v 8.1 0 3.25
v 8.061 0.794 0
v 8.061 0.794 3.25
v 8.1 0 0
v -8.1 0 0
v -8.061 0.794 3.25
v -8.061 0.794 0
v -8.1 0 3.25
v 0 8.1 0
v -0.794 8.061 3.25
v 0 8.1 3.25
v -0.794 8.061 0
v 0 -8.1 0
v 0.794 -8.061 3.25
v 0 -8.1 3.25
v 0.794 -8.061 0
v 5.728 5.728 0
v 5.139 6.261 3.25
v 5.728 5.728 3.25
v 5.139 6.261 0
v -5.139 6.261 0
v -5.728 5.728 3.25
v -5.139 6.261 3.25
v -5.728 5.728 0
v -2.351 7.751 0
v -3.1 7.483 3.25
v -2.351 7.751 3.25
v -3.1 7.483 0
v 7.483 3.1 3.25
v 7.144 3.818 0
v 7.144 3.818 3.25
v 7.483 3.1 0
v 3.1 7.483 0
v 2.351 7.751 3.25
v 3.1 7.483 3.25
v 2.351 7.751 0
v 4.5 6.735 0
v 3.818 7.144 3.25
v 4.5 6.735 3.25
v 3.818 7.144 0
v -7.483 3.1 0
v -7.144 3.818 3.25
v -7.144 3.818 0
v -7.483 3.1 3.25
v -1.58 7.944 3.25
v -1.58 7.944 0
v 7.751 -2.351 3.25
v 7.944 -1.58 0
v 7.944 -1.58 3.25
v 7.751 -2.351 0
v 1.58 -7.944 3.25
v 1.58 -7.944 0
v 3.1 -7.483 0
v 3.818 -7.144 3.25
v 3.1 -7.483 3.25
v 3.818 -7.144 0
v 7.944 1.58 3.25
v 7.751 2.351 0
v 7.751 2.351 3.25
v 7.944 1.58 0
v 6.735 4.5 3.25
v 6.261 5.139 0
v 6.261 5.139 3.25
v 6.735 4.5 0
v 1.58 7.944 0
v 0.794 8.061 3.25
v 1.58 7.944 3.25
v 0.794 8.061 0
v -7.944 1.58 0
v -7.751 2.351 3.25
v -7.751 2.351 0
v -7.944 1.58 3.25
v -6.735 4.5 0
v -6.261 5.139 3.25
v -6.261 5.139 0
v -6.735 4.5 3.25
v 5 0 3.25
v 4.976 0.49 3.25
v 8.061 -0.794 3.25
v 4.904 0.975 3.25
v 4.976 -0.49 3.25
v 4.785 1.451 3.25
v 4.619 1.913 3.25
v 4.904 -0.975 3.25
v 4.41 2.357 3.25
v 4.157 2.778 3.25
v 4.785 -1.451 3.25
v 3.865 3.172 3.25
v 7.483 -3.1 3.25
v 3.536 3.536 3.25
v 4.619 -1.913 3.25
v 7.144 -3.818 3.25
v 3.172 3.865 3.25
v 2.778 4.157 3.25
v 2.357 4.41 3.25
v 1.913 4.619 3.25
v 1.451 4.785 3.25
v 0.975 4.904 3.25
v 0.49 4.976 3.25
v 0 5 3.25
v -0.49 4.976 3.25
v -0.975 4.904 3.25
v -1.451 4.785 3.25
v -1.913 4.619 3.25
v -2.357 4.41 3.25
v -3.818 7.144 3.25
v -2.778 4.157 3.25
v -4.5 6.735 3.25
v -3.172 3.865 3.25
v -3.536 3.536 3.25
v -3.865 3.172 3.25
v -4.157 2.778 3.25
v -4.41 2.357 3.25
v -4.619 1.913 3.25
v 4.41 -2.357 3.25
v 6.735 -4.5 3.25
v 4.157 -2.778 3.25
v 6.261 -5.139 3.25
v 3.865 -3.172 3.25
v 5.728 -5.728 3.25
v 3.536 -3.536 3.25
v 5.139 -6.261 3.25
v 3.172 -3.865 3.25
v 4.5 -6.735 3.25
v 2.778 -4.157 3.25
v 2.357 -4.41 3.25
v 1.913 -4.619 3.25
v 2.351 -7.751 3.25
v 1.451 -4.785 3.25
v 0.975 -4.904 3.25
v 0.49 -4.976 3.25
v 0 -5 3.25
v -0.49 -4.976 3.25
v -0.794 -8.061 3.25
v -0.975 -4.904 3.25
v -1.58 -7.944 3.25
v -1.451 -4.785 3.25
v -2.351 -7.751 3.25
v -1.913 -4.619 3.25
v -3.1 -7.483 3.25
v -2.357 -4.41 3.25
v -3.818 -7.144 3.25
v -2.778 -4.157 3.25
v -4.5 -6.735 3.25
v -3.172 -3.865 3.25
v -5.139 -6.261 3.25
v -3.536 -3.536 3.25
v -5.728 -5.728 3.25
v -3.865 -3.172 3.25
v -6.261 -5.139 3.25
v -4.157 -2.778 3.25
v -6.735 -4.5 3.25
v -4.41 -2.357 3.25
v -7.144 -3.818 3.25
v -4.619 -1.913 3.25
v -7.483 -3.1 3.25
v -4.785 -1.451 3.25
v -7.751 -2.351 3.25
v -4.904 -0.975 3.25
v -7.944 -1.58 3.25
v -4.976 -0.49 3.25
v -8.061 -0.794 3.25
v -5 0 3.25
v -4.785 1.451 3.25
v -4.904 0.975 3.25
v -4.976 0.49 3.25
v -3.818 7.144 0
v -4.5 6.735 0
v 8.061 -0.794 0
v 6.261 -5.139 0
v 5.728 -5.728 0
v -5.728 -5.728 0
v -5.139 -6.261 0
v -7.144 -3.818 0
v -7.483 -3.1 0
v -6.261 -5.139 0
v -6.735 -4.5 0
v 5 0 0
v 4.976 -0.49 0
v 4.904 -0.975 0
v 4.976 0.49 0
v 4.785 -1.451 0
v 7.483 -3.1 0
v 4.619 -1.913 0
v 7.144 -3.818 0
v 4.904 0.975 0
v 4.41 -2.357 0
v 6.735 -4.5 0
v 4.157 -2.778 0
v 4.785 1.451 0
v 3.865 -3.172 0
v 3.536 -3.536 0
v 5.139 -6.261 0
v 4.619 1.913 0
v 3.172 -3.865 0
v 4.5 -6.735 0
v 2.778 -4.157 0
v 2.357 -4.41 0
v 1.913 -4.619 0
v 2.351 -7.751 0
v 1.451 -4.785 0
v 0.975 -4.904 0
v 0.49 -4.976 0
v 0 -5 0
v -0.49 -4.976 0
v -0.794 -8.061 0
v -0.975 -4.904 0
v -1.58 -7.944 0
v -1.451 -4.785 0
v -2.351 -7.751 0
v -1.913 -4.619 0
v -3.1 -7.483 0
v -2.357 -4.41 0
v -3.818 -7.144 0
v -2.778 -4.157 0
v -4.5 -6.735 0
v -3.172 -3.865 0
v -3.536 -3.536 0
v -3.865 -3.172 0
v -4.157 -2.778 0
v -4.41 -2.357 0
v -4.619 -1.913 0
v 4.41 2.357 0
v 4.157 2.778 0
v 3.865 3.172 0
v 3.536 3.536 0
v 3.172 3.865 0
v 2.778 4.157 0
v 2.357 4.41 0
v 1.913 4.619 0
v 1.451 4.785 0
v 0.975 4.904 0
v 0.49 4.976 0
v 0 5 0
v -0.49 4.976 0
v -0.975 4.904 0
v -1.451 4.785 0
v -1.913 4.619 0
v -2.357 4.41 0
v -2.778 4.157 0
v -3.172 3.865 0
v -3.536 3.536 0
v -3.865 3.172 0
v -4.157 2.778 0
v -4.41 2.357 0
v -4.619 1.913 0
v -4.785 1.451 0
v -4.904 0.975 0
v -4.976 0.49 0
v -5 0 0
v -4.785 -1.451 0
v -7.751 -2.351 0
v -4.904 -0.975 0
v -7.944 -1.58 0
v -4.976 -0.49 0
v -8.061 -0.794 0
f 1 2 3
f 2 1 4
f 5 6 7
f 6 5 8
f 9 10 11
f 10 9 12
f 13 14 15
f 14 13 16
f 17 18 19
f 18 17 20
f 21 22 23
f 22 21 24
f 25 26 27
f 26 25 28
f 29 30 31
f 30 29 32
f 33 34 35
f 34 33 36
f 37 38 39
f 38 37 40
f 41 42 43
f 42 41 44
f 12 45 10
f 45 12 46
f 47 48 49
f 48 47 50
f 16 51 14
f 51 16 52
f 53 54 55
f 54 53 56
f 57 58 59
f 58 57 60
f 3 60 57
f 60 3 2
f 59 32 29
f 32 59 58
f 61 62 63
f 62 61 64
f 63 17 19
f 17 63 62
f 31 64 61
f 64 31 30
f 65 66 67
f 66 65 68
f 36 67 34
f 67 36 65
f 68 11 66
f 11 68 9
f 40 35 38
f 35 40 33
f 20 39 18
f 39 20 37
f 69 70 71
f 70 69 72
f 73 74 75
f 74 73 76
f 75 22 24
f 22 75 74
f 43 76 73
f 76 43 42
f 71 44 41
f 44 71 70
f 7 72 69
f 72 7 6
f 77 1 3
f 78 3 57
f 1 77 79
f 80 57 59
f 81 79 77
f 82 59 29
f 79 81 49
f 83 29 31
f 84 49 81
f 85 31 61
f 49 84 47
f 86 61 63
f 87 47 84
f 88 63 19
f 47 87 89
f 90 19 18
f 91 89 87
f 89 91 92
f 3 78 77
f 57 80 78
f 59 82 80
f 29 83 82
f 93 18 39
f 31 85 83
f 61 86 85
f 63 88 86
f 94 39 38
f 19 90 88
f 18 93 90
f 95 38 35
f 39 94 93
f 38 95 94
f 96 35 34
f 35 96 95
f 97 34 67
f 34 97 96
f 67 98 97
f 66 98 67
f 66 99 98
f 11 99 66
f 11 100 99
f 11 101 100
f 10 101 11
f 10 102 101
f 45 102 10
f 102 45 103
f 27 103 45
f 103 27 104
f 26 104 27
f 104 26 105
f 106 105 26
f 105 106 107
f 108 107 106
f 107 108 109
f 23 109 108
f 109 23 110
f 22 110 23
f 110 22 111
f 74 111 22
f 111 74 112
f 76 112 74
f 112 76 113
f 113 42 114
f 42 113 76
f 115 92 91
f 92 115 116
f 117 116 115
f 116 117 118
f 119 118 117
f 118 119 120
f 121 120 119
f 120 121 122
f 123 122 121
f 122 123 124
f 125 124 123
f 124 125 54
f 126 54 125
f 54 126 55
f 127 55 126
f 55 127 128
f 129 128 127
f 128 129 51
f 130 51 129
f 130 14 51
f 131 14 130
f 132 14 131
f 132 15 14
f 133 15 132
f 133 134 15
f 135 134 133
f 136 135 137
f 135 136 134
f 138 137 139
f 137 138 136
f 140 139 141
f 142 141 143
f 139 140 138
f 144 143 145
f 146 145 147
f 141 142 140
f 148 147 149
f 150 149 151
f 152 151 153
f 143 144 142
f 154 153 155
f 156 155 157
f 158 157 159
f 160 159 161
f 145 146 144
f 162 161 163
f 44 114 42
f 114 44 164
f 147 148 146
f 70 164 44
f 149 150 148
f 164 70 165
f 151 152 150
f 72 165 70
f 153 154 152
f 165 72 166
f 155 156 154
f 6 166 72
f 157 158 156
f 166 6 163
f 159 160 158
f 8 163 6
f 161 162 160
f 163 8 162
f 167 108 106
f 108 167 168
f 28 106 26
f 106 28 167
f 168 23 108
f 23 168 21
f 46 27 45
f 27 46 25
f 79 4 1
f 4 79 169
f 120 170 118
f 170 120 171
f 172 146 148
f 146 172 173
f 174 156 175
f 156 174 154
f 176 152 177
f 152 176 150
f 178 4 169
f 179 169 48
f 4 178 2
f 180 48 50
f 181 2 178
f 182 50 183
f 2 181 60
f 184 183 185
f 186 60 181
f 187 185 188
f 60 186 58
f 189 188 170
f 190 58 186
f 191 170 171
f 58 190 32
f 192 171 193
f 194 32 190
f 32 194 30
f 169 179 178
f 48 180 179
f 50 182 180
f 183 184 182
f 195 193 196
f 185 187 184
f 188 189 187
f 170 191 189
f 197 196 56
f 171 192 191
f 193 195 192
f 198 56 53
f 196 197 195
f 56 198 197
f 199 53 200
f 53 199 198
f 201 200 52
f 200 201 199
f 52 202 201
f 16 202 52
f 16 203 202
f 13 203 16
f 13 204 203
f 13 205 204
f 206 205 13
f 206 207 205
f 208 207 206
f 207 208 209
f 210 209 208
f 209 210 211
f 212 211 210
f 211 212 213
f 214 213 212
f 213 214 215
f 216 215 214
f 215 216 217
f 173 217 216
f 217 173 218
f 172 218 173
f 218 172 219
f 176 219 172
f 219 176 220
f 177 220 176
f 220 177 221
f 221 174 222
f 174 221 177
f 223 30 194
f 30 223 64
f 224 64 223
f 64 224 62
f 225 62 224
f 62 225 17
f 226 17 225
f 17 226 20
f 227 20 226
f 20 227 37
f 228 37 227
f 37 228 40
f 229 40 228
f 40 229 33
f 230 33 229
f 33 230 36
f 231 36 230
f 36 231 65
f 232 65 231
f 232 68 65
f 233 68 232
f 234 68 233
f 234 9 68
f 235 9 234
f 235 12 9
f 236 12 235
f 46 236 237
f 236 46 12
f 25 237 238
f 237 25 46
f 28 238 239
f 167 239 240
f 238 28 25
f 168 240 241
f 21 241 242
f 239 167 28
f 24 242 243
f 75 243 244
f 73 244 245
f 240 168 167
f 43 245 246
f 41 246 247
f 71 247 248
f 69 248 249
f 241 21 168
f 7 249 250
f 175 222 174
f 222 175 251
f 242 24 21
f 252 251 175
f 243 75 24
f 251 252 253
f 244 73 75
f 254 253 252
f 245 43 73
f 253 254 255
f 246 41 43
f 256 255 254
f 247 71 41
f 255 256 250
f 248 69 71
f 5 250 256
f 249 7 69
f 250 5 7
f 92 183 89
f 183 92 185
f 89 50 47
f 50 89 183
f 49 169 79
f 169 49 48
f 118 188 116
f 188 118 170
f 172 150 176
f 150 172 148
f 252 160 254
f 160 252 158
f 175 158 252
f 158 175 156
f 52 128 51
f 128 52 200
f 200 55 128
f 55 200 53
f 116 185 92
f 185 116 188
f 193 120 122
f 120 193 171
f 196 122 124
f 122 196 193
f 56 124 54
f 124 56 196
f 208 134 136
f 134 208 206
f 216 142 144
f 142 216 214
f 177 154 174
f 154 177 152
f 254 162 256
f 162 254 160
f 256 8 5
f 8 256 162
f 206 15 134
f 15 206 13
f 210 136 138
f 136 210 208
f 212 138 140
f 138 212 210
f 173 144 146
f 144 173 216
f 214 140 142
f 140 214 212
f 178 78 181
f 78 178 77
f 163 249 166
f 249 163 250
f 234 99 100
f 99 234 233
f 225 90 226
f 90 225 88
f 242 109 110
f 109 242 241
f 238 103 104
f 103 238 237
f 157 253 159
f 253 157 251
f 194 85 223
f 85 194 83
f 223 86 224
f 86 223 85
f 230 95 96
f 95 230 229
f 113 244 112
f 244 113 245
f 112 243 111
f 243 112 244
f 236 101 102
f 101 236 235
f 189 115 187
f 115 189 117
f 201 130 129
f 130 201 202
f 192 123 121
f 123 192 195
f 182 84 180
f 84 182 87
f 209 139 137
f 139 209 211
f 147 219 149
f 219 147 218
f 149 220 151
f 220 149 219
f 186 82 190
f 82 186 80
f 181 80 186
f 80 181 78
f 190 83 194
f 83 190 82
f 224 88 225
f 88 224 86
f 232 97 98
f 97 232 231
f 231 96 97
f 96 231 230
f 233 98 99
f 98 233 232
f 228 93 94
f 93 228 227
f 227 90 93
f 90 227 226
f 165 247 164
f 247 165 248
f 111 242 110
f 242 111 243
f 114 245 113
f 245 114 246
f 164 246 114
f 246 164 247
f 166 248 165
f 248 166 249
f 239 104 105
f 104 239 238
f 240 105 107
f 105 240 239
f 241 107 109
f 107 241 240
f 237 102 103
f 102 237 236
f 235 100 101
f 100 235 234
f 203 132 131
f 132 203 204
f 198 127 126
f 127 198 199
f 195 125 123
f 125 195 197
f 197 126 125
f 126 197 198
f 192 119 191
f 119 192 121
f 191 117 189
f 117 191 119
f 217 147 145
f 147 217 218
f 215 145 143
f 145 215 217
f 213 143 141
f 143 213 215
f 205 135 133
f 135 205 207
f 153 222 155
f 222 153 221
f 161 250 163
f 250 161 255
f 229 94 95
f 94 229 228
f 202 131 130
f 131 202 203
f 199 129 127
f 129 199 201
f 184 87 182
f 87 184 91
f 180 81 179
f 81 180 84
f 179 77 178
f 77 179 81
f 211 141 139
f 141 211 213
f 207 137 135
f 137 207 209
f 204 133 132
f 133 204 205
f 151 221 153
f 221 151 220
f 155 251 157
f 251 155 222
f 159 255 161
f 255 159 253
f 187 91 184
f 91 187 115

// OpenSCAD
// Smoothness of the cylinders
$fn = 64; 

//inputs
od=16.2; // Outer diameter of the collar
id=10; // Inner diameter of the spacer
h=3.25; // Height of the collar that will sit above the insert


// Main module to create the spacer
module kneeler_spacer() {
    difference() {
        
        cylinder(h=h, d=od); // disk shape of the collar
        

        //remove the inner material to create the hollow spacer
        translate([0, 0, -1]) // Subtract a slightly taller inner cylinder to create the hollow bushing
            cylinder(h=h + 2, d=id); // Inner (slightly taller to ensure clean cut)
    }
}

kneeler_spacer();
